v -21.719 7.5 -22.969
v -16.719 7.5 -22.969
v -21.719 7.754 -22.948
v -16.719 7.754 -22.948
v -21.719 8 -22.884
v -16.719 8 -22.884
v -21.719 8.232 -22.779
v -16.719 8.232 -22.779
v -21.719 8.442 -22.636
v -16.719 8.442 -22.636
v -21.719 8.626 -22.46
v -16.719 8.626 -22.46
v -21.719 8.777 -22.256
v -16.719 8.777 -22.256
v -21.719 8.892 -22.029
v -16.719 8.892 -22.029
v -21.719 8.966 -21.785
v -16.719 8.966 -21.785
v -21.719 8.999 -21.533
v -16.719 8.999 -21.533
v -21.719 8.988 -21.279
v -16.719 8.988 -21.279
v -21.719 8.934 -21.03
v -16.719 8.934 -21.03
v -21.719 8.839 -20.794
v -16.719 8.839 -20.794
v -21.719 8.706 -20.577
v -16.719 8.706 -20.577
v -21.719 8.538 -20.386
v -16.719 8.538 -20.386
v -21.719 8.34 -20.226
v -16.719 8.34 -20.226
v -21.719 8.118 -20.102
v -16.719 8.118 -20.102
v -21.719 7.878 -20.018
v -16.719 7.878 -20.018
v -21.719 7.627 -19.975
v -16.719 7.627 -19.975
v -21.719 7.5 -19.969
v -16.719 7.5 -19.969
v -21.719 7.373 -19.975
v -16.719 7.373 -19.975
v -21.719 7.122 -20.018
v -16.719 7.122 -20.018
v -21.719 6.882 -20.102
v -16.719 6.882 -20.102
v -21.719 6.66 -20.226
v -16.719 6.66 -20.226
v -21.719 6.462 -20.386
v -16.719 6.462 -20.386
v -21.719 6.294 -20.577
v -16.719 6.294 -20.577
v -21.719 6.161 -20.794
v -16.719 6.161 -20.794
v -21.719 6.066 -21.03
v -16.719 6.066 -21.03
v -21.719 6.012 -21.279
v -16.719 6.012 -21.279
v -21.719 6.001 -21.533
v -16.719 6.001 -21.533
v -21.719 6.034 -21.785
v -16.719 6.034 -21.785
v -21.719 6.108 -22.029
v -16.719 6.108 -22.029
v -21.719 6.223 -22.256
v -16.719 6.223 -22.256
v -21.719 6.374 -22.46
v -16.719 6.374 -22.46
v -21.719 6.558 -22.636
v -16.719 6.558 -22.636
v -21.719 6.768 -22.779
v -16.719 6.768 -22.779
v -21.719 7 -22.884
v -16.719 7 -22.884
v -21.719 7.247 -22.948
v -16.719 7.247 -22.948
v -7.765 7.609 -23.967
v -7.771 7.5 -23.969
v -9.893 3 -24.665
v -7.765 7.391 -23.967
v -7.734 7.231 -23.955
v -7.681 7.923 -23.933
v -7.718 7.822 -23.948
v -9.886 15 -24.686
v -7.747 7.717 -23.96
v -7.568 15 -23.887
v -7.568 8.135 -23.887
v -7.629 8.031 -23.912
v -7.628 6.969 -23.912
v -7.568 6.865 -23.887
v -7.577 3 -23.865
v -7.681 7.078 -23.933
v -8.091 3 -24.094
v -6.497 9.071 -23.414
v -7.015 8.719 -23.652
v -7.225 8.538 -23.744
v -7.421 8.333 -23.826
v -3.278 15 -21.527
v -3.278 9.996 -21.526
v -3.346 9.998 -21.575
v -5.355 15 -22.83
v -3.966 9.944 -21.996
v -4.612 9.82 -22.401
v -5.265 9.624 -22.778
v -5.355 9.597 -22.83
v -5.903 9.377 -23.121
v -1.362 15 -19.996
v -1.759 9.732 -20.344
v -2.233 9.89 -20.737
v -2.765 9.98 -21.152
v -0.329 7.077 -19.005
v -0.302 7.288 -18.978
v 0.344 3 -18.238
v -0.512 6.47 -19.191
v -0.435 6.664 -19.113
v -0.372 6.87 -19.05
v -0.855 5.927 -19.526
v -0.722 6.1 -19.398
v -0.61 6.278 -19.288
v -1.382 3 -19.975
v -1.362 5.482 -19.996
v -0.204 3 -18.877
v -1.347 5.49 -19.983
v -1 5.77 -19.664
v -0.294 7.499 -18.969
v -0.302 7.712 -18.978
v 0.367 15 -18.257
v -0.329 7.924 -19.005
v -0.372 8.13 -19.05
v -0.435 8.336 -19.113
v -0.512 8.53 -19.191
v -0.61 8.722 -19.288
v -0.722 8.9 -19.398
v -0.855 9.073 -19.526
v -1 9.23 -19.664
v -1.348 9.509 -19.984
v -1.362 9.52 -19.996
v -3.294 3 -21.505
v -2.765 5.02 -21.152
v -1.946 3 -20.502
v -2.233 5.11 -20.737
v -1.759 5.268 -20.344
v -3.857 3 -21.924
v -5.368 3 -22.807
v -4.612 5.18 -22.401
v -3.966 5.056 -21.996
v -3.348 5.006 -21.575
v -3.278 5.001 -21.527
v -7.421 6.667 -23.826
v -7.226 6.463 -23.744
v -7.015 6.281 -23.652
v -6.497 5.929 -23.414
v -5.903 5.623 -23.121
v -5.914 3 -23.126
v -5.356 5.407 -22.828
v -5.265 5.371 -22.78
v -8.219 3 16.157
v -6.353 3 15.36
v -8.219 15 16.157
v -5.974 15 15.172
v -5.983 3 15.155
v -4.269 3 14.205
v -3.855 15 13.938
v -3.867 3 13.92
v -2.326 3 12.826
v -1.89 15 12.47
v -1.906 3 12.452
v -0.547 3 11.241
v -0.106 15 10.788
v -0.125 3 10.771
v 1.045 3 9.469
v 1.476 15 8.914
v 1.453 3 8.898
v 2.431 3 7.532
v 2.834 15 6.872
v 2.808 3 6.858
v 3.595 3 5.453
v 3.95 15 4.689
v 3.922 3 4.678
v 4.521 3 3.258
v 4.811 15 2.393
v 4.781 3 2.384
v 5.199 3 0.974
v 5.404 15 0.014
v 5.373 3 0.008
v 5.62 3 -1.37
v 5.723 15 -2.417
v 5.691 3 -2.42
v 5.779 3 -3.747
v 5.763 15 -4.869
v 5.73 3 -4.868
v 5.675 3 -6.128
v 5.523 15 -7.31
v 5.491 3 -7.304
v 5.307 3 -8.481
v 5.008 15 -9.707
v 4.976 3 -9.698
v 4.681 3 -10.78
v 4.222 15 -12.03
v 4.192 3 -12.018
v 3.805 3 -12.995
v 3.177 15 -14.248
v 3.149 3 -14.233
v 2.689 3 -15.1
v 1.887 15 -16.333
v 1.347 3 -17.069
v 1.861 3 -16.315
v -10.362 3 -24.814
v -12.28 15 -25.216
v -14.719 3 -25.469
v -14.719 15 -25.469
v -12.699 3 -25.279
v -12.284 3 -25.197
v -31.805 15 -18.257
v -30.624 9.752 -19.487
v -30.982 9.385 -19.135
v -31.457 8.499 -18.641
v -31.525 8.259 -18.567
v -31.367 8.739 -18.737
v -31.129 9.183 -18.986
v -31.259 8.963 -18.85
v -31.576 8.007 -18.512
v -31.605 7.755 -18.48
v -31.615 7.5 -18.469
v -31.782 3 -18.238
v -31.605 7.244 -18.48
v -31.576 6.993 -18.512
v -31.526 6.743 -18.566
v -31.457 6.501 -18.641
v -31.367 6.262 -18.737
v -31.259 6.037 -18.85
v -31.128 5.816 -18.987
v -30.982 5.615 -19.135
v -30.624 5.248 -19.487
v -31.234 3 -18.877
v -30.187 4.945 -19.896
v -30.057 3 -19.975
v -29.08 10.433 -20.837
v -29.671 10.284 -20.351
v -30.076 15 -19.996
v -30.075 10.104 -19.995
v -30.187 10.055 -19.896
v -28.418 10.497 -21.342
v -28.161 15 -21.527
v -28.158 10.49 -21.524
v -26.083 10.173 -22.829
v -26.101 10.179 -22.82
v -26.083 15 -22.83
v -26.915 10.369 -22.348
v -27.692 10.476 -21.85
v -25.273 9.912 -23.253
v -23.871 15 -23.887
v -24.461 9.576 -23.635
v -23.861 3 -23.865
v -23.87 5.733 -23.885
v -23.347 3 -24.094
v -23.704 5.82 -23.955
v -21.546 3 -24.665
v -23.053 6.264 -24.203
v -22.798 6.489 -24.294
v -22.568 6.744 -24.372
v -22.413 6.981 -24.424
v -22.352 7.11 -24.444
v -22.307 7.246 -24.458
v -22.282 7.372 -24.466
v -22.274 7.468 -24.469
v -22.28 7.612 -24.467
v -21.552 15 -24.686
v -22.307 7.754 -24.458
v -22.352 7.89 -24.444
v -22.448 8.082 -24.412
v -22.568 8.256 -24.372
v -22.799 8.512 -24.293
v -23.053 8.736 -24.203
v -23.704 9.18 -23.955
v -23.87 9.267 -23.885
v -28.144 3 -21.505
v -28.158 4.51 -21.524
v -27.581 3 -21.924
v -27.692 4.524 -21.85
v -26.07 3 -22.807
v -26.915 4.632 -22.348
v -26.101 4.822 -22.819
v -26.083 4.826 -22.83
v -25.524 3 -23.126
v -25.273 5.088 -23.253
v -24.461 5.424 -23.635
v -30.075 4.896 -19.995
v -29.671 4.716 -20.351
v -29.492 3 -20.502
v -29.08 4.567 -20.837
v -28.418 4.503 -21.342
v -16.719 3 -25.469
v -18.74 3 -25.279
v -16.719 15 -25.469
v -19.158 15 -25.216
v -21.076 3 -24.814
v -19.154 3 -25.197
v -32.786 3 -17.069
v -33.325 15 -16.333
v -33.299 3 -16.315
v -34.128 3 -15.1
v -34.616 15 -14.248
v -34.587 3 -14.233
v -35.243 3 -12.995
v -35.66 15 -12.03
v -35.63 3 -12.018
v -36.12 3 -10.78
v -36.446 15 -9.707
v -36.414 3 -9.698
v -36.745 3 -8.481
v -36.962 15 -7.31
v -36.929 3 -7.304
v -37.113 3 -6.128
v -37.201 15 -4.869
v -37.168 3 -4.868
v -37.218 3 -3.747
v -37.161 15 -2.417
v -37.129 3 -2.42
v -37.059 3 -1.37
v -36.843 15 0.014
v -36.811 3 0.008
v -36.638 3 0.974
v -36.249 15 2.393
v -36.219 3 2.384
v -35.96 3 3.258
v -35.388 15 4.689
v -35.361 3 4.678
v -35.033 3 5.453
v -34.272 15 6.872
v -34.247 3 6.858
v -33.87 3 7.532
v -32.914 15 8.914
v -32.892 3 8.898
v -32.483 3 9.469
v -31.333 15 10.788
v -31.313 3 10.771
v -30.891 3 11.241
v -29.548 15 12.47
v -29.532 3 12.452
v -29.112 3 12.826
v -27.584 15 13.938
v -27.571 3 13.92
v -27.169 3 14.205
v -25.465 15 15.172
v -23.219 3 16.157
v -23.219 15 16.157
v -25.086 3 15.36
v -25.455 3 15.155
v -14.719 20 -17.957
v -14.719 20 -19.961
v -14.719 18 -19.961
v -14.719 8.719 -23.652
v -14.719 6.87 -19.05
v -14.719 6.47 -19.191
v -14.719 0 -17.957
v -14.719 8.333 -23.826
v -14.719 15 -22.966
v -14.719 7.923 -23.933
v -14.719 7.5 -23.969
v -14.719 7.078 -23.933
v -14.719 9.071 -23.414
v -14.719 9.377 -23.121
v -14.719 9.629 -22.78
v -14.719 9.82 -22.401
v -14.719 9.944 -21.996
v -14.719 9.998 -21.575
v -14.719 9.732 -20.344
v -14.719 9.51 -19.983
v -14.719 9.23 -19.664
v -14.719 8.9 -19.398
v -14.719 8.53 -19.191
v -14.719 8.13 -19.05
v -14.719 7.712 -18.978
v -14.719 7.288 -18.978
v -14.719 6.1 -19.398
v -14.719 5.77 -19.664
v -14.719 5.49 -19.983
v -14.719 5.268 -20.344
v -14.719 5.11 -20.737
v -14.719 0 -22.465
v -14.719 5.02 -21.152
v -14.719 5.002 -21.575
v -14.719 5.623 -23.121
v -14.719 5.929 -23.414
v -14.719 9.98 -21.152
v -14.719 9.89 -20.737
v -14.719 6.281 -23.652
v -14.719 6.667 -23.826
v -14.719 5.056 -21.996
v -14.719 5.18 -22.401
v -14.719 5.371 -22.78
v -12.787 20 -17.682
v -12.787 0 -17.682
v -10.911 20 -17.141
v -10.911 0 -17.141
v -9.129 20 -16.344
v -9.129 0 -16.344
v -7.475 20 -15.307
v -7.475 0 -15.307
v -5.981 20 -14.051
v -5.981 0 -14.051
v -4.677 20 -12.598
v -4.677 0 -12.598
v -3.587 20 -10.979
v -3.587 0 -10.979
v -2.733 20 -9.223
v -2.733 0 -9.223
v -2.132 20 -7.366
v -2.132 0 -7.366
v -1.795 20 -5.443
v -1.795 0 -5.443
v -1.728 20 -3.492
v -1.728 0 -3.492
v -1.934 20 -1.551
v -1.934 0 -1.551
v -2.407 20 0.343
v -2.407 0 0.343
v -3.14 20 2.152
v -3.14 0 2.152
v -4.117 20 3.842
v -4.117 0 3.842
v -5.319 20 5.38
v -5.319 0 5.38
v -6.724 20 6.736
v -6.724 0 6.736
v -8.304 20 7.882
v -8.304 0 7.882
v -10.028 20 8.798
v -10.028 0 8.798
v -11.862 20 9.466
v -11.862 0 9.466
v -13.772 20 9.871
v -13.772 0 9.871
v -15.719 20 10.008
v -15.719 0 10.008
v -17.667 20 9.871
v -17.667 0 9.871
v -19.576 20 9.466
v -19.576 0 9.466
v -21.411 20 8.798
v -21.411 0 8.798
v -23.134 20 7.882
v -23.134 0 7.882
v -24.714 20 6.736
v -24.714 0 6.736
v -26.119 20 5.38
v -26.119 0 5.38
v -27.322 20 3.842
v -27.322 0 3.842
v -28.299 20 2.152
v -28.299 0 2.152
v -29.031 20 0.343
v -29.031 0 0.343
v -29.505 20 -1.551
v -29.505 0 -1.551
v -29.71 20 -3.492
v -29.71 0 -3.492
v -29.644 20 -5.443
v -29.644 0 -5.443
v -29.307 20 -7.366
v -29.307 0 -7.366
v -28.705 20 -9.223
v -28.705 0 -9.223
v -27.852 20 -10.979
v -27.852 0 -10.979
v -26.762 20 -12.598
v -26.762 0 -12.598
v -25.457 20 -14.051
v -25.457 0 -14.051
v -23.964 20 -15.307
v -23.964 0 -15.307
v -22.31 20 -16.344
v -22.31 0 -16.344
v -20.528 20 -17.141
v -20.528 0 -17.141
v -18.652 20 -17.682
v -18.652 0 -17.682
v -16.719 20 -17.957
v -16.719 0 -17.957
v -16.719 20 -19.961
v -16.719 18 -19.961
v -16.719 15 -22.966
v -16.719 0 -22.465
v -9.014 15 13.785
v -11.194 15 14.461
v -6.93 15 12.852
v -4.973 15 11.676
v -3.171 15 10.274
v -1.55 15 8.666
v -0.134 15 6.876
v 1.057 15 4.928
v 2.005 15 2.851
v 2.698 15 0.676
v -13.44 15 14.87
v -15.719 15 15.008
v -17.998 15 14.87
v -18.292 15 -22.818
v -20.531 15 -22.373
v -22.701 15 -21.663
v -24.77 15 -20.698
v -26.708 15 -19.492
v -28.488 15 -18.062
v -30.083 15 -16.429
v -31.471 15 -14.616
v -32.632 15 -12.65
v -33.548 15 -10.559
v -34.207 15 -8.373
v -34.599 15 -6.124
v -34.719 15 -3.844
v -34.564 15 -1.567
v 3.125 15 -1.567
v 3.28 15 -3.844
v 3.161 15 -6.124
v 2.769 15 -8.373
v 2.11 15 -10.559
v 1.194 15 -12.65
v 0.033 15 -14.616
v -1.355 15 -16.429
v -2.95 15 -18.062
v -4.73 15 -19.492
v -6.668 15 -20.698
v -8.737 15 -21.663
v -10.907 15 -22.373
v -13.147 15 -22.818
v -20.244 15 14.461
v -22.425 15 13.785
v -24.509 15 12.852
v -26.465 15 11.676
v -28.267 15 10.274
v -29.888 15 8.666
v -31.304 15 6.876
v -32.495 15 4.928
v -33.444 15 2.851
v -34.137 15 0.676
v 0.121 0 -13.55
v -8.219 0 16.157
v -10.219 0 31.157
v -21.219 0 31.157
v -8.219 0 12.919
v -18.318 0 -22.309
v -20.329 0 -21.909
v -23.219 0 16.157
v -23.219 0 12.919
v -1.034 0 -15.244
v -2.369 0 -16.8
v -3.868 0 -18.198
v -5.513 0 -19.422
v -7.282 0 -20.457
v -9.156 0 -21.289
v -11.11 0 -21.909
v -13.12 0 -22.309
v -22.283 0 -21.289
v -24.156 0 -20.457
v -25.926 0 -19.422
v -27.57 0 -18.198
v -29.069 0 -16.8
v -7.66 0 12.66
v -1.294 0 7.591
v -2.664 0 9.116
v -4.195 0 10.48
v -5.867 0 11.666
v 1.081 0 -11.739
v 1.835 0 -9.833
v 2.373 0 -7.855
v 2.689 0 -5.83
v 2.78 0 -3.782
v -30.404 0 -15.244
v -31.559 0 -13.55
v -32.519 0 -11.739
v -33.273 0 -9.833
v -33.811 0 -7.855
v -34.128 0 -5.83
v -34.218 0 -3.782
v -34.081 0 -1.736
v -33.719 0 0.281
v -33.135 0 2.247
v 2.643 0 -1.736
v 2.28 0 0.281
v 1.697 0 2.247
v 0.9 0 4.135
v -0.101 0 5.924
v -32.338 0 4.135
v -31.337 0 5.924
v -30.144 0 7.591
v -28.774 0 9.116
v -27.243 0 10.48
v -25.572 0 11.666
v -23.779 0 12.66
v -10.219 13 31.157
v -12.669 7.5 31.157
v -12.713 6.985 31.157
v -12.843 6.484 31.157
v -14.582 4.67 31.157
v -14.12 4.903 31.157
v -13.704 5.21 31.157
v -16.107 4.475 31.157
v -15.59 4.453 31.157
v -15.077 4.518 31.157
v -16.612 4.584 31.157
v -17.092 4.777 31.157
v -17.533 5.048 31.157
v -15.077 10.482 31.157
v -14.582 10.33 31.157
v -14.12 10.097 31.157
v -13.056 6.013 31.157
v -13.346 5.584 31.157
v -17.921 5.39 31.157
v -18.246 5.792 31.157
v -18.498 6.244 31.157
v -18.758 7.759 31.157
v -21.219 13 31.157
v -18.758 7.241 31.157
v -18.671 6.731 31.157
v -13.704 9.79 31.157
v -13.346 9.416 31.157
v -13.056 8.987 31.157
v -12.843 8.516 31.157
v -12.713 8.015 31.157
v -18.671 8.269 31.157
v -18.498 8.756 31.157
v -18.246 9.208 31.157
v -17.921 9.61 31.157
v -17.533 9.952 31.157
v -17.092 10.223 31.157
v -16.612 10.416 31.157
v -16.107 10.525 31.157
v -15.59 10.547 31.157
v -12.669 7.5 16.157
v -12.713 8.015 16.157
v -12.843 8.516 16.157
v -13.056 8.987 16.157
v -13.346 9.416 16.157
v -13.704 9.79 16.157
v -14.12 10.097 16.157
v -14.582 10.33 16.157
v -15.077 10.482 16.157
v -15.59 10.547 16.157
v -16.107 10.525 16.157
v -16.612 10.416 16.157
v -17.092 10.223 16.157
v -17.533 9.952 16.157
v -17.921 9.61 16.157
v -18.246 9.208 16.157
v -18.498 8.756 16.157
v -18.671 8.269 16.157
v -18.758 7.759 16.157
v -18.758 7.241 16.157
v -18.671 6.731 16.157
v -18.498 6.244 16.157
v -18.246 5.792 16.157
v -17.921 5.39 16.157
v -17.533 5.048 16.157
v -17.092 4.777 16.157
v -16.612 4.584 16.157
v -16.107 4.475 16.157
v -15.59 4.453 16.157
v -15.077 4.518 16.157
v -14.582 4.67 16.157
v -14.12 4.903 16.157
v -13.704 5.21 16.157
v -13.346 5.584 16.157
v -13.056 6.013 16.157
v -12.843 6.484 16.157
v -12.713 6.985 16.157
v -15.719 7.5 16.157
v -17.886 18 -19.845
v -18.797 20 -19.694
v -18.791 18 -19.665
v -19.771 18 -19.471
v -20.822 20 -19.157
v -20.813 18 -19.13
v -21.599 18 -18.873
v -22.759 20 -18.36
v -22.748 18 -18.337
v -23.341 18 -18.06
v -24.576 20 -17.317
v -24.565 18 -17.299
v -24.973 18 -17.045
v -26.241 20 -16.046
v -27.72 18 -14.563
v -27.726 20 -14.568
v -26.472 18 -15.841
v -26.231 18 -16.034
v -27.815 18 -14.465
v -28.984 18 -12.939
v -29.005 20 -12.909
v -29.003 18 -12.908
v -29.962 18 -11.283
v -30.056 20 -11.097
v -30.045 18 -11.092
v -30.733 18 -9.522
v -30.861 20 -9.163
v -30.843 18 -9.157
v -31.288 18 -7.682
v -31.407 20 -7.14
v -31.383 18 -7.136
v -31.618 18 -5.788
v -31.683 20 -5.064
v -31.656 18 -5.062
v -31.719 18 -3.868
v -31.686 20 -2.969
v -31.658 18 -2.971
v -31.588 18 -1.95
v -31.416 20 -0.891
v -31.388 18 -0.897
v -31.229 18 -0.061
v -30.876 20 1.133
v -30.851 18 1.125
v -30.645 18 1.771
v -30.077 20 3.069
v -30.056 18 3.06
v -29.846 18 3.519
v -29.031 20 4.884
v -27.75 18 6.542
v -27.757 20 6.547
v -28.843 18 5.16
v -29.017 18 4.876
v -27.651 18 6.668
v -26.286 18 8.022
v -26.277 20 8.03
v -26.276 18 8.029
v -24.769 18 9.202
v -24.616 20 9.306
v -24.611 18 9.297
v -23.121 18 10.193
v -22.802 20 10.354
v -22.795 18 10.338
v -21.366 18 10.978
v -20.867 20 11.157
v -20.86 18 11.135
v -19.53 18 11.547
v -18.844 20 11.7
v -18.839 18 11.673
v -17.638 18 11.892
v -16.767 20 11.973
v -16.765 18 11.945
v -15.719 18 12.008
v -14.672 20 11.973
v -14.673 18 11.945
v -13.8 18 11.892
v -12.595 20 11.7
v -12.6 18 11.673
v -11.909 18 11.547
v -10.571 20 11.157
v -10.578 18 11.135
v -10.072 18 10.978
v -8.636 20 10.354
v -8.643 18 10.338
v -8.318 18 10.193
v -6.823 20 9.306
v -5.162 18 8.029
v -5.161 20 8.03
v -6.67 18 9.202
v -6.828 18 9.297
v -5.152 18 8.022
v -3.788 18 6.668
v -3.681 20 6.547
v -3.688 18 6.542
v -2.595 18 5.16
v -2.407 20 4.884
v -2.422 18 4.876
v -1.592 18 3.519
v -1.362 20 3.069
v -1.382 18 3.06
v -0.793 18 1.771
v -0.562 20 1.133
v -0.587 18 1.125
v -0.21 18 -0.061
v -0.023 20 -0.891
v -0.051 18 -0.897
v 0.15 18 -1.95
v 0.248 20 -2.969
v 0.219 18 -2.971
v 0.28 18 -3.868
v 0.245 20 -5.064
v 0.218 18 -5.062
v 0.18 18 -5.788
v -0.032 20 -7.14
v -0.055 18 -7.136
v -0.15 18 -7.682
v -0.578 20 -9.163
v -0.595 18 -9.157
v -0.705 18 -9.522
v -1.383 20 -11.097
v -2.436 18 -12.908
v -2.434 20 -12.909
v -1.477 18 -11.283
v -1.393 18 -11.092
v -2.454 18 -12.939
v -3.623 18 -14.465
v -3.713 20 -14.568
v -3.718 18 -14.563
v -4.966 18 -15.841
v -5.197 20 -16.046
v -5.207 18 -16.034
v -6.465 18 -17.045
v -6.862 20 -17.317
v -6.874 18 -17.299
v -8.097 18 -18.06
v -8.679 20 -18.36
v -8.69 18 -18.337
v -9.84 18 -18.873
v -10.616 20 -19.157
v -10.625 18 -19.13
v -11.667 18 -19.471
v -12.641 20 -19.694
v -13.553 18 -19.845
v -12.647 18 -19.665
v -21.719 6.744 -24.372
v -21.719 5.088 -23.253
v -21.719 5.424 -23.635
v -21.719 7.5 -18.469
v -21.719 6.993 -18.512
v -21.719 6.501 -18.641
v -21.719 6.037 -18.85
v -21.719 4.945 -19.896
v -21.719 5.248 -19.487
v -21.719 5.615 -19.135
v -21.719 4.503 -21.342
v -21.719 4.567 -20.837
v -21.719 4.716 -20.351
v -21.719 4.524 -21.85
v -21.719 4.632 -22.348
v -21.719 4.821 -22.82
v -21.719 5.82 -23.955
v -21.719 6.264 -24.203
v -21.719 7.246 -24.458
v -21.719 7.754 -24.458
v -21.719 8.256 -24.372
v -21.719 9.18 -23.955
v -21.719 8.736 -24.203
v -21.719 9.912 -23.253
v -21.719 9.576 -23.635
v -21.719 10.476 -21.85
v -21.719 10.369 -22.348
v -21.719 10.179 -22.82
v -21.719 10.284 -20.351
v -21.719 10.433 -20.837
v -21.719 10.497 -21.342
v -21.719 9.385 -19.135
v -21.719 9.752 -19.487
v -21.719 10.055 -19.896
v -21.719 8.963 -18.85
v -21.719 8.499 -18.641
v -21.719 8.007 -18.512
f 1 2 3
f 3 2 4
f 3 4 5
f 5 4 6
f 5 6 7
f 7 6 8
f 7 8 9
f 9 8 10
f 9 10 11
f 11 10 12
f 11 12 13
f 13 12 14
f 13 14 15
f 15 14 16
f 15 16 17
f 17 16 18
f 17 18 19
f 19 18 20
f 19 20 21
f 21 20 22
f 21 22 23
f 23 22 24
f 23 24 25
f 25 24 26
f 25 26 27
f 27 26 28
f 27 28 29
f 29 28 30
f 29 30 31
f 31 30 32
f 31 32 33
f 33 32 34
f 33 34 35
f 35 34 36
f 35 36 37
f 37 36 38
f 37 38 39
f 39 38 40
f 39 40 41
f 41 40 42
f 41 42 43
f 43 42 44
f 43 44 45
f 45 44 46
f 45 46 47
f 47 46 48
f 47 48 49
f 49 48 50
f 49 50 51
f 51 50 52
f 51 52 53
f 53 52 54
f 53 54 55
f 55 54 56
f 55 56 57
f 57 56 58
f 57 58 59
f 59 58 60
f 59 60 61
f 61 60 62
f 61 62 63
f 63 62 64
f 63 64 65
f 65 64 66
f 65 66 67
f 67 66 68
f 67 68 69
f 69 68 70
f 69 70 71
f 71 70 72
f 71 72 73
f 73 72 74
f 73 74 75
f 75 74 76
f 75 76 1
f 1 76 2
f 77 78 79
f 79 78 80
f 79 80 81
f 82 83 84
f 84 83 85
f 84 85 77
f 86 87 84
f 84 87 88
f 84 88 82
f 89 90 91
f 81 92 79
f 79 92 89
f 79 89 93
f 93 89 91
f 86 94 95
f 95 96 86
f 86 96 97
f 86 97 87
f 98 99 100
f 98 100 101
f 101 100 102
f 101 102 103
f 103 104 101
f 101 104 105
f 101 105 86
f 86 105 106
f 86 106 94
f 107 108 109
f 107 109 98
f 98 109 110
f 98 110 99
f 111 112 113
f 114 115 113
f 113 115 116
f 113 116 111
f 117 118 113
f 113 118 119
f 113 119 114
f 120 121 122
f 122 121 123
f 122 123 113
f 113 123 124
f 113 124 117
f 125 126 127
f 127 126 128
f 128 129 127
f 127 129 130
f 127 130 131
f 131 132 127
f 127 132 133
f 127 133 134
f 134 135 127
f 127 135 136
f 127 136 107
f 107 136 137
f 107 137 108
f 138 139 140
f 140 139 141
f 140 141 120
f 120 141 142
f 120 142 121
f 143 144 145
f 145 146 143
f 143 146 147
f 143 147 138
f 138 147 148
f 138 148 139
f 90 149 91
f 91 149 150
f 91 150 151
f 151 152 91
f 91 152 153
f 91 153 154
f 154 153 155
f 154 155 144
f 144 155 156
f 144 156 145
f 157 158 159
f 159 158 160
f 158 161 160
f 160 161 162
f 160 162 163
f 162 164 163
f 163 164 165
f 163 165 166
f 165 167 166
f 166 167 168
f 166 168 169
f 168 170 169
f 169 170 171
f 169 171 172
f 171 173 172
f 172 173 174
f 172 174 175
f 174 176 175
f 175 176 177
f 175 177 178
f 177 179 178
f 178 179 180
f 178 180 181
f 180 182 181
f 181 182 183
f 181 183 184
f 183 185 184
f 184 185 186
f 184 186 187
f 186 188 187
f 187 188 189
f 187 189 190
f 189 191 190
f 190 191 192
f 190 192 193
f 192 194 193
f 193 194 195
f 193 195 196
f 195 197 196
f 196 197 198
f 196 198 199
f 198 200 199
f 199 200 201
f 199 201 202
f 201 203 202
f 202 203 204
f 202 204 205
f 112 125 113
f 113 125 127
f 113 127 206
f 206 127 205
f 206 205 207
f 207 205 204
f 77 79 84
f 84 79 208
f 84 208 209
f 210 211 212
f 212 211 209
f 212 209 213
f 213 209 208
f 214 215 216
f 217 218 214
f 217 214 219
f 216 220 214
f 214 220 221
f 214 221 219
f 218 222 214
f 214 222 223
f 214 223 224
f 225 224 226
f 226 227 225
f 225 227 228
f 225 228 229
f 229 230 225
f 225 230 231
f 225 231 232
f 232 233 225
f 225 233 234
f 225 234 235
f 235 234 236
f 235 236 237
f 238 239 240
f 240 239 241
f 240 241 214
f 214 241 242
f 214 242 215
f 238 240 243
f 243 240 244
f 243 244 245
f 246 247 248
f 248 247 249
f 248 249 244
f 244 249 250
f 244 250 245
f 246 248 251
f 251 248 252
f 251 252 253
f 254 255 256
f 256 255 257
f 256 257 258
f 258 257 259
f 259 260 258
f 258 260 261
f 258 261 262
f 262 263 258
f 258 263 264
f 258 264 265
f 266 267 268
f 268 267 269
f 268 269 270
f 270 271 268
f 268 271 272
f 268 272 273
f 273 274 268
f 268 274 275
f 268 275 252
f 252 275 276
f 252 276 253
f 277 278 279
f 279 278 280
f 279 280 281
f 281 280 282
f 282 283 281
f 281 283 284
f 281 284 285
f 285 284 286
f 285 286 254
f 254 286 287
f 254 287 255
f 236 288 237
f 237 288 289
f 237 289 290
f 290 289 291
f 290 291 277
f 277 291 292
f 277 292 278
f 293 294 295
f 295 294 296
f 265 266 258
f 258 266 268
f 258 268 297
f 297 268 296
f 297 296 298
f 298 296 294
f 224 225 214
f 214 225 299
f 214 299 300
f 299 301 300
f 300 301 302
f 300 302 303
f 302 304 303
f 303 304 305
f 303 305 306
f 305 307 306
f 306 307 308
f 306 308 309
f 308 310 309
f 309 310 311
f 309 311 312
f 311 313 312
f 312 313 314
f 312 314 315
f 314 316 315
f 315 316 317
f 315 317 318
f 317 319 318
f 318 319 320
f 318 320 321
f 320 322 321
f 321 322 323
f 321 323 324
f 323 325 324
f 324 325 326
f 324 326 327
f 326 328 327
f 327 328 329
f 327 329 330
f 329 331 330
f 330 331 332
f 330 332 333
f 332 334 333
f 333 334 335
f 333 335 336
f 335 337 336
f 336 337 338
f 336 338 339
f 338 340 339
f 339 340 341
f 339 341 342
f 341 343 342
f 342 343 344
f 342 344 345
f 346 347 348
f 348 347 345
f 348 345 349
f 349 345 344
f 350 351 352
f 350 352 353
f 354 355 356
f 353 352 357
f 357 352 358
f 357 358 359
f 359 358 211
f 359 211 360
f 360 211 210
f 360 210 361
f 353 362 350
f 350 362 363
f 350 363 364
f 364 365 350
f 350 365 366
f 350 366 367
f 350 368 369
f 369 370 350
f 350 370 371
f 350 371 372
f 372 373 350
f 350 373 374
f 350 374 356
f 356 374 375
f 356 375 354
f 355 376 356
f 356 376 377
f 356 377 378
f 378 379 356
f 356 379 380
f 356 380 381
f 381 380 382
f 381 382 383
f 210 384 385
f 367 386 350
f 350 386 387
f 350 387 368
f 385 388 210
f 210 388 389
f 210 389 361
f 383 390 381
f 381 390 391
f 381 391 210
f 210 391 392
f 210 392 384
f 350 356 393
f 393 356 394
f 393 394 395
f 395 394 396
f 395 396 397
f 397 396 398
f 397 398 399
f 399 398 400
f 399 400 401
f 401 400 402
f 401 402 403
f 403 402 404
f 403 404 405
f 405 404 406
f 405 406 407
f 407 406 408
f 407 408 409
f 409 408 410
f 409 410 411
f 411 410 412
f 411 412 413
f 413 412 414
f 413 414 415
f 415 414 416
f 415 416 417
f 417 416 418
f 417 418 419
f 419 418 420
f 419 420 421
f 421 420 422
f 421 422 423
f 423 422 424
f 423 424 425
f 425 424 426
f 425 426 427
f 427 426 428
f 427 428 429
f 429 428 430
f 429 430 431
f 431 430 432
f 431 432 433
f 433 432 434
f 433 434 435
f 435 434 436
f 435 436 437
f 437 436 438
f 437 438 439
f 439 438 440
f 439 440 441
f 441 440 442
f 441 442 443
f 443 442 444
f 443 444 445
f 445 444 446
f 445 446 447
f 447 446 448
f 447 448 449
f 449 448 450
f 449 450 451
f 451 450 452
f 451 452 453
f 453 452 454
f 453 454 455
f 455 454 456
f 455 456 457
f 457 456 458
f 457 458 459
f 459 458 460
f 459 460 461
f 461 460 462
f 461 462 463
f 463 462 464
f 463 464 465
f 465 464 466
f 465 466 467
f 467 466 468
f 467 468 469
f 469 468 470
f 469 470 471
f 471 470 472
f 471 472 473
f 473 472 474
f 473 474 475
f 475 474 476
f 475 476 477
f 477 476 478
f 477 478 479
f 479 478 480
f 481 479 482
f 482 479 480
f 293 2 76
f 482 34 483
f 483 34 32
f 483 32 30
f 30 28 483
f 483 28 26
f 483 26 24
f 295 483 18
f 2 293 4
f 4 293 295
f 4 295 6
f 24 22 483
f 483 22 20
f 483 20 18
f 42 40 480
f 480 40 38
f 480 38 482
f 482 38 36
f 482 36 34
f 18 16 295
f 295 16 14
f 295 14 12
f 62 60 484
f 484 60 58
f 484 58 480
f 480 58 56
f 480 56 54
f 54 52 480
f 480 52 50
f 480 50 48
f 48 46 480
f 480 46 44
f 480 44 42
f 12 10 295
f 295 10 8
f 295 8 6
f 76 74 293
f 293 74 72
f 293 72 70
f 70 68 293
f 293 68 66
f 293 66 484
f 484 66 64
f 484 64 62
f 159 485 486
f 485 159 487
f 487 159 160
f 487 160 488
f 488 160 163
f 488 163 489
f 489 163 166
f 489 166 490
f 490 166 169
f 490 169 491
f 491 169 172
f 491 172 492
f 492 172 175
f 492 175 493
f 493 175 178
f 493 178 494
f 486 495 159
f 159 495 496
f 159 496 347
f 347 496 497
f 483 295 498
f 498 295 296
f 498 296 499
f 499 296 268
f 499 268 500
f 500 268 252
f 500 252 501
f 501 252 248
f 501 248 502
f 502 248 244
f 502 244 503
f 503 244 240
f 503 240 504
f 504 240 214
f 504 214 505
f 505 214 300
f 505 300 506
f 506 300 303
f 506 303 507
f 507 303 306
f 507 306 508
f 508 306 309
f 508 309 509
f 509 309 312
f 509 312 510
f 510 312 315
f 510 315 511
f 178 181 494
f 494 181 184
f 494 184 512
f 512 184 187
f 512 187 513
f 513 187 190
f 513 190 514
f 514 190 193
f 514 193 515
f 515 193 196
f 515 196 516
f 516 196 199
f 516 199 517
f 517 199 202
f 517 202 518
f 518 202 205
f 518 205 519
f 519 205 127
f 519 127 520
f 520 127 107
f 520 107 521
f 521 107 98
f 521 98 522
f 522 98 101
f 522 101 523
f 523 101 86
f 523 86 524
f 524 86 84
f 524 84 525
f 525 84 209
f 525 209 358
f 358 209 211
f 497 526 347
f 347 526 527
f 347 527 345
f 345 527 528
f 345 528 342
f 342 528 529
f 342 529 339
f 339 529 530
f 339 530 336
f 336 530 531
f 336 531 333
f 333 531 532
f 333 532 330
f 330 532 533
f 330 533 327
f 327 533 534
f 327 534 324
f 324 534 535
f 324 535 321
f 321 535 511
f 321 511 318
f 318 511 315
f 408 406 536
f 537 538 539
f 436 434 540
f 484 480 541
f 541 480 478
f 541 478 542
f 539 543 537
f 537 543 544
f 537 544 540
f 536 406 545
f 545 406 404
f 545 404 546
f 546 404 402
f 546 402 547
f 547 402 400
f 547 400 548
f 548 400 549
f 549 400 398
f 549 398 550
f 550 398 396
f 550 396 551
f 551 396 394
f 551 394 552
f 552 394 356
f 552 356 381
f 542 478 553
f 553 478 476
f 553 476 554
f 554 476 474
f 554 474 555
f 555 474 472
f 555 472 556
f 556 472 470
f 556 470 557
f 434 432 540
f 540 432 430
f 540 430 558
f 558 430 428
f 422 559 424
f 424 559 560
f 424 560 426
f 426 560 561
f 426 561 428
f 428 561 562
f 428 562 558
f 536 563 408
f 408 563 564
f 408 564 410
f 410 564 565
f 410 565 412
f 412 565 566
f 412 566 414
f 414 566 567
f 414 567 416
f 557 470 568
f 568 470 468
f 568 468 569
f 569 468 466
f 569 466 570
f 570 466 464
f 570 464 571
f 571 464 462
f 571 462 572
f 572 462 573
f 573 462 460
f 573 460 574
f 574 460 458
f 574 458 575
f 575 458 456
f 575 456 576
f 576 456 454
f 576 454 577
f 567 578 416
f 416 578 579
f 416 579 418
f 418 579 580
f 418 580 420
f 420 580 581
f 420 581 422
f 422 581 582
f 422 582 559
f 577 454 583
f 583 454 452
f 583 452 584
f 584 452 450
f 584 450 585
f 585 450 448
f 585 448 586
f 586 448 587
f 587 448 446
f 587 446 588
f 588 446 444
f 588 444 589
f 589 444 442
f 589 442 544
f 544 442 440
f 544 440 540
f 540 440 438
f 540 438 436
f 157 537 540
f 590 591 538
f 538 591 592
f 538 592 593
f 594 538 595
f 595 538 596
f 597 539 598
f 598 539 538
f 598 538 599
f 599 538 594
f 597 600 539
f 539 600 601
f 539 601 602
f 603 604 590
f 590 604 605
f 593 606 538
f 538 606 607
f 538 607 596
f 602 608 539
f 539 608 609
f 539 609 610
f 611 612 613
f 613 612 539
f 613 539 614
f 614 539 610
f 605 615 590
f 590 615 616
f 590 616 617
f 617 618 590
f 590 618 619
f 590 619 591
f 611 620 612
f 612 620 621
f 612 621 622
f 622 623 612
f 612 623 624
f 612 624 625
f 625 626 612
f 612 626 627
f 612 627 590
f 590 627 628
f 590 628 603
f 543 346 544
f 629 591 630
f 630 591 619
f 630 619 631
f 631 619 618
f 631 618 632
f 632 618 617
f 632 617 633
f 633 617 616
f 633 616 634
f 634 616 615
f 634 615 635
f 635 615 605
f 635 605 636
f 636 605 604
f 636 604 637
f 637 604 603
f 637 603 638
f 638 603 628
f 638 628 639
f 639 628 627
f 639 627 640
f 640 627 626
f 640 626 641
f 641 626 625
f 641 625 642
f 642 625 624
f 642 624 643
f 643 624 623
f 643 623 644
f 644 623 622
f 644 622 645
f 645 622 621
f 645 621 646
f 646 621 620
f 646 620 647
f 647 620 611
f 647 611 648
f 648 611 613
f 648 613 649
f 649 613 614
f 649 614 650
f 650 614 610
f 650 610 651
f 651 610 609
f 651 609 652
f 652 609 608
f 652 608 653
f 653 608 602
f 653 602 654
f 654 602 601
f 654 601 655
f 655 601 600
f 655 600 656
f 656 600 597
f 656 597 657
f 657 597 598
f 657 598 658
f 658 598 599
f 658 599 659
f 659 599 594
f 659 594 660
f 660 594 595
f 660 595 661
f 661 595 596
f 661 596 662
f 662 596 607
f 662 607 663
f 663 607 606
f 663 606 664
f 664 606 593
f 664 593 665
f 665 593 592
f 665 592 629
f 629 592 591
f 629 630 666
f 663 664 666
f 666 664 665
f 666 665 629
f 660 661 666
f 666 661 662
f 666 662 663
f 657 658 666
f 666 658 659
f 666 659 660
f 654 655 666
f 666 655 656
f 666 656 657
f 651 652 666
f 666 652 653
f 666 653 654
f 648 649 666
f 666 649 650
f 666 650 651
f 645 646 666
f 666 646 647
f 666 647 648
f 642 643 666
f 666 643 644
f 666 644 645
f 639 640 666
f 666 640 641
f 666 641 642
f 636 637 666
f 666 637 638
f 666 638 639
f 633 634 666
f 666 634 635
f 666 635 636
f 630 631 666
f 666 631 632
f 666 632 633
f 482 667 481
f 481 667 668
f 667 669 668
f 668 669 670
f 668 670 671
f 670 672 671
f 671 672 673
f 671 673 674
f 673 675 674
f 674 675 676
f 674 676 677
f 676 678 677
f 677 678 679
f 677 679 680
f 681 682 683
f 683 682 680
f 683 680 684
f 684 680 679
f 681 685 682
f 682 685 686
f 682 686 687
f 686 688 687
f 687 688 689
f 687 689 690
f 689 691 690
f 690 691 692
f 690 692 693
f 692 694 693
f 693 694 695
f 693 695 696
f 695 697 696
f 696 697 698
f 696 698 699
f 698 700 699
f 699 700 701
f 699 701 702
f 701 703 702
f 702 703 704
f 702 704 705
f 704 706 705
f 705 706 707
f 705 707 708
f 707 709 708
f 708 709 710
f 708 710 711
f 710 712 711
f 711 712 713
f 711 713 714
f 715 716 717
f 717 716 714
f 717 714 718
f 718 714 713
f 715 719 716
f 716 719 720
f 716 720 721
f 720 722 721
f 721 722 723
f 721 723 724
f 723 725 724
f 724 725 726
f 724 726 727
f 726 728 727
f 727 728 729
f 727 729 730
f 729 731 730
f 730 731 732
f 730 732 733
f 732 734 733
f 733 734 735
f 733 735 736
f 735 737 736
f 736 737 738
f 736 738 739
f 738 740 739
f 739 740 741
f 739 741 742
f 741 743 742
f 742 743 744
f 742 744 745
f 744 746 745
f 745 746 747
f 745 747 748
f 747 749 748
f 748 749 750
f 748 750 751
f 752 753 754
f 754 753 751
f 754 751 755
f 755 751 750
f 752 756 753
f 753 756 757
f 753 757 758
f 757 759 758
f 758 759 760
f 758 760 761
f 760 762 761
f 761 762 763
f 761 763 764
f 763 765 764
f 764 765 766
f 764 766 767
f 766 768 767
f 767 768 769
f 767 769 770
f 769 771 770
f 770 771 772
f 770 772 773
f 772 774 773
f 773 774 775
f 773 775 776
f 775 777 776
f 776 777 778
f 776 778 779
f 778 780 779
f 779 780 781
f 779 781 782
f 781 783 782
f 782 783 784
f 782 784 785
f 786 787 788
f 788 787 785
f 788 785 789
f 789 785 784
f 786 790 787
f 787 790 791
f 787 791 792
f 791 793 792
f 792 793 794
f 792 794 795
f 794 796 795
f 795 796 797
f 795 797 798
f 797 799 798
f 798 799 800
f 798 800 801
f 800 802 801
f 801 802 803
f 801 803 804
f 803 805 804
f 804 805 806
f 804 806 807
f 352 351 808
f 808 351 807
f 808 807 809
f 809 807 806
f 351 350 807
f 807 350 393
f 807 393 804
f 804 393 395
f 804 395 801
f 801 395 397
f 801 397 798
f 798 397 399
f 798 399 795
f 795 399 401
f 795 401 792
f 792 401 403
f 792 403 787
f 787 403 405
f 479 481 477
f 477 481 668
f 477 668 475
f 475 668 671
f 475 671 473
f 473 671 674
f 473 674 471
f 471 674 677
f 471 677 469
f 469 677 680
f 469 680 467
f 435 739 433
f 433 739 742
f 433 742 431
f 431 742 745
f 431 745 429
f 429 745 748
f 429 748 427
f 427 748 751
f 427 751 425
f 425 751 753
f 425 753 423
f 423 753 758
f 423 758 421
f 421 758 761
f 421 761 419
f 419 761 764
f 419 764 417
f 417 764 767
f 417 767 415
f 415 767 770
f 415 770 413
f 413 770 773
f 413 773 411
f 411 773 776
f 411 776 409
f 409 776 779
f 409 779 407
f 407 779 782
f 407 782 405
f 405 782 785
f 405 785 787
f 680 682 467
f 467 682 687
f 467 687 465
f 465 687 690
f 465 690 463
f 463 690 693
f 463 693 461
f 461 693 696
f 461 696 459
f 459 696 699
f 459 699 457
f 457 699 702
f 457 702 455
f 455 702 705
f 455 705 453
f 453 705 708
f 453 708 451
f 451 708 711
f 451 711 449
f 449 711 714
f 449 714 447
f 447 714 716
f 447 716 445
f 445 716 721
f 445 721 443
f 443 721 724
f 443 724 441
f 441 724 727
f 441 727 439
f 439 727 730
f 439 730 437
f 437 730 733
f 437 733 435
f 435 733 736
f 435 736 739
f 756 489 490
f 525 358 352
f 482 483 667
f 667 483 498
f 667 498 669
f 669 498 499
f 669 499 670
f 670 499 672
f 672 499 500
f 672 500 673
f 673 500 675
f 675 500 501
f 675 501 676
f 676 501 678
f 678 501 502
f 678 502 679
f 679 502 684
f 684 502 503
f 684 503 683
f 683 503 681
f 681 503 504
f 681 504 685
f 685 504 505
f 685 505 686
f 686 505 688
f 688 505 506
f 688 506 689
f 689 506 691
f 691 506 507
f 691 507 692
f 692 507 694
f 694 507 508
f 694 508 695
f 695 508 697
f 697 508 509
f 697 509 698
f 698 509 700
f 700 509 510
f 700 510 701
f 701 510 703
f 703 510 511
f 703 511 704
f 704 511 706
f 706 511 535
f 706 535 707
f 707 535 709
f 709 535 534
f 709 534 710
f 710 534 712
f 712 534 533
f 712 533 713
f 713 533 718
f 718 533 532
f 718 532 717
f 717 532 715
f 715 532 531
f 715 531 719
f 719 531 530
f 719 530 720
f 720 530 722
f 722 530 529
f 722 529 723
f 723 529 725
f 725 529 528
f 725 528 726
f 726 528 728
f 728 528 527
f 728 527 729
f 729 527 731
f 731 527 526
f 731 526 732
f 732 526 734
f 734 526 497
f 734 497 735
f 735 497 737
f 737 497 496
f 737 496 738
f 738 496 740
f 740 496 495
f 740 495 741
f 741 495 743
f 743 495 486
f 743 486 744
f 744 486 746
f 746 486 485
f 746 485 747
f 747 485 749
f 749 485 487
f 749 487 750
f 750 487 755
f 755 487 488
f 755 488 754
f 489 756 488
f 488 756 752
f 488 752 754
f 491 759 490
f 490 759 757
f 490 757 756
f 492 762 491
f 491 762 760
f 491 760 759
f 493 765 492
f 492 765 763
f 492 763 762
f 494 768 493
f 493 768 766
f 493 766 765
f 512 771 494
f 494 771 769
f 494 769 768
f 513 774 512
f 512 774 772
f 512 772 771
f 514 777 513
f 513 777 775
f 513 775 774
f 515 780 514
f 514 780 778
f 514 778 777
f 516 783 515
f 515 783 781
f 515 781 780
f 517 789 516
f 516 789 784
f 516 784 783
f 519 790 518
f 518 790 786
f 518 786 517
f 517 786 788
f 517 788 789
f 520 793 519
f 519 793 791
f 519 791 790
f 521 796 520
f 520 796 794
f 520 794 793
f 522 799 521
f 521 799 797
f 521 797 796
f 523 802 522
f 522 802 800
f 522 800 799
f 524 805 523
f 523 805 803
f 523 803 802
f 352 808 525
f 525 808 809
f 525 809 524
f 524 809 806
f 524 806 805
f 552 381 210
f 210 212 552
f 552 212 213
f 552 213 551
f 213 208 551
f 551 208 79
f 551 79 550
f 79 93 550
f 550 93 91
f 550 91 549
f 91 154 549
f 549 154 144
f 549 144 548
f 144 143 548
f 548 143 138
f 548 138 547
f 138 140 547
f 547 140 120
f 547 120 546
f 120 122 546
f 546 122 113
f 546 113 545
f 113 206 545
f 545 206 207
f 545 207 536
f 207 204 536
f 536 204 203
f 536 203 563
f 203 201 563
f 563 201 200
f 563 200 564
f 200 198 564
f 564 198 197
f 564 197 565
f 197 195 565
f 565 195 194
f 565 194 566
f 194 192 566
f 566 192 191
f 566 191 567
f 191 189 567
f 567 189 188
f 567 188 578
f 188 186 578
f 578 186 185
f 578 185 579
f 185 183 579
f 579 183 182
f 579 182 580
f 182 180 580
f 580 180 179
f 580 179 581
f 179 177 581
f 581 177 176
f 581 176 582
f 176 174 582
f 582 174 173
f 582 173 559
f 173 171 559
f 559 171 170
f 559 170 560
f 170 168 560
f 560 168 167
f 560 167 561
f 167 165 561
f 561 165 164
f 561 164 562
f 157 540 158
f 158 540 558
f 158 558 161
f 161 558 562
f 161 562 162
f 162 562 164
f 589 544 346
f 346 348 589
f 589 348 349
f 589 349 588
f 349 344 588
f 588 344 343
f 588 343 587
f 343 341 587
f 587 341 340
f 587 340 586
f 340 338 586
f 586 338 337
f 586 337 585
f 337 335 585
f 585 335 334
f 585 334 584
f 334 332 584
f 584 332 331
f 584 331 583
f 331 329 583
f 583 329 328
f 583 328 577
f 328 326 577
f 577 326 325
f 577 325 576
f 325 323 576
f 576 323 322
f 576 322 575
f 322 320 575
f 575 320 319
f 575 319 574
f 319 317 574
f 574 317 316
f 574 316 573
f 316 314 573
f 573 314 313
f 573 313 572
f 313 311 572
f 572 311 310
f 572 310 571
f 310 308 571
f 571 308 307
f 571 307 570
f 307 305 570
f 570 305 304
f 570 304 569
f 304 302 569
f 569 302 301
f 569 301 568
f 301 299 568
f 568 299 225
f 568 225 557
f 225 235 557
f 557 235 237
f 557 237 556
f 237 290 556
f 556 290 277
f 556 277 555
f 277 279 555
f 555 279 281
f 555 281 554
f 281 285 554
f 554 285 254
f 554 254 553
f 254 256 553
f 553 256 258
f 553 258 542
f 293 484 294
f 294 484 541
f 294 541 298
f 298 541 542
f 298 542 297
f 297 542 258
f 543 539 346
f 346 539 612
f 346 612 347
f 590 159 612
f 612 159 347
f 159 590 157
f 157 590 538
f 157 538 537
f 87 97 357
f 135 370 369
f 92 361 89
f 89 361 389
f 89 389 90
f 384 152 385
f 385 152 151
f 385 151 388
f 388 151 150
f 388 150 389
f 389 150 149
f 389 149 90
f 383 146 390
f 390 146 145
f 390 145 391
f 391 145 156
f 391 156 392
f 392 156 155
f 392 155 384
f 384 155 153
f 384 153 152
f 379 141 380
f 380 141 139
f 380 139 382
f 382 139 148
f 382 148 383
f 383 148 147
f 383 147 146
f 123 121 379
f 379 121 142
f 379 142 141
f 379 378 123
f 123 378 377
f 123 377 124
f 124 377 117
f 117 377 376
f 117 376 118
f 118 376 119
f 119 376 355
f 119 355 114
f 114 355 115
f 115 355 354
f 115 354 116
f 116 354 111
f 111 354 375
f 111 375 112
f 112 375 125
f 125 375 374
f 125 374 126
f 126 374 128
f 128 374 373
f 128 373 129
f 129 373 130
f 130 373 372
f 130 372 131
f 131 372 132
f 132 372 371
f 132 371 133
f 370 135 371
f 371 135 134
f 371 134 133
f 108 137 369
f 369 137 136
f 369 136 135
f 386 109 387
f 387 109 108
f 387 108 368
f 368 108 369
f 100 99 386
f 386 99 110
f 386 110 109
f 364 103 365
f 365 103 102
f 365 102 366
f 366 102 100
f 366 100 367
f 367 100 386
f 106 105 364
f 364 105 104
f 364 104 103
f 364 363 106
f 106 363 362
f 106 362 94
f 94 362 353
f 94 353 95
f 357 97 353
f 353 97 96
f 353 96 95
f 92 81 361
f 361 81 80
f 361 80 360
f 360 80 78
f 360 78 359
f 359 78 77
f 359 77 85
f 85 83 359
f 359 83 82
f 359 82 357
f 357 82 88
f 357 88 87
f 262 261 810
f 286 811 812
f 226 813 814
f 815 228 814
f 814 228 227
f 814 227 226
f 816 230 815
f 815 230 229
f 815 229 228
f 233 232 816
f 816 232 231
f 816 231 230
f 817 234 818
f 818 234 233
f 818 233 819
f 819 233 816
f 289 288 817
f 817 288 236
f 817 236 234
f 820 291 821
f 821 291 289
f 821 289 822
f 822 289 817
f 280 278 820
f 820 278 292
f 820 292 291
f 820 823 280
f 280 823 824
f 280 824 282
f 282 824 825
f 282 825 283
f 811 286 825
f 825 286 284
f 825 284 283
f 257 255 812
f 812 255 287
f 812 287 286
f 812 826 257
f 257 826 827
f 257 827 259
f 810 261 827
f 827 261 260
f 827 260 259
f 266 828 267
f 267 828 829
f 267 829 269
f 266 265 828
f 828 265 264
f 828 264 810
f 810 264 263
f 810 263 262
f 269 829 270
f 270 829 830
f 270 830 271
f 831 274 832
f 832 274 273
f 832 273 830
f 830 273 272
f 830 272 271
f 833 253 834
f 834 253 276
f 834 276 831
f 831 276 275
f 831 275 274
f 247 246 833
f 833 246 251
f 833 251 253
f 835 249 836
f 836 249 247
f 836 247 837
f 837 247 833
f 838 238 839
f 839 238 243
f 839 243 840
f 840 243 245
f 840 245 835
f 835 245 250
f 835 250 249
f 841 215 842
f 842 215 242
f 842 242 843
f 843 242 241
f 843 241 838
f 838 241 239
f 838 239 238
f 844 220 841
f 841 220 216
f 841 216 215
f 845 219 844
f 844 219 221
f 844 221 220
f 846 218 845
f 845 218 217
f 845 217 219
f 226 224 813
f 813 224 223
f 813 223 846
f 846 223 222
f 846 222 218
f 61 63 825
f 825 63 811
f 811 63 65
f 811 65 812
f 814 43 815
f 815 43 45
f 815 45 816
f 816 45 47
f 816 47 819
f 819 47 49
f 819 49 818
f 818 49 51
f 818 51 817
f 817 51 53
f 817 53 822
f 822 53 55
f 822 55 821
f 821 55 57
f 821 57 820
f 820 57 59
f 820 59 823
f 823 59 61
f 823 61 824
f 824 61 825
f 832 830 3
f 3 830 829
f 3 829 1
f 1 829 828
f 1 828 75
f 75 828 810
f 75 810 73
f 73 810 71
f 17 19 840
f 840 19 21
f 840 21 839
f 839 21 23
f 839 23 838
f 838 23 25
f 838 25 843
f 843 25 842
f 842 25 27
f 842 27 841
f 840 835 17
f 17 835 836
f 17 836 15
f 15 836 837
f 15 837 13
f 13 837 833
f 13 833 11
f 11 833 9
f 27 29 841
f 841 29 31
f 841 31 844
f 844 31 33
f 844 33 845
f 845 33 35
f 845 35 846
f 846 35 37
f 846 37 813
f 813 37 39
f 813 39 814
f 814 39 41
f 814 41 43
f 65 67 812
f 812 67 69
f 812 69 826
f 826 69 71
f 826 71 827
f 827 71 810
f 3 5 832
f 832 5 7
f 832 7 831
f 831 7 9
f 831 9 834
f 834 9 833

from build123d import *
from OCP.BRepFilletAPI import BRepFilletAPI_MakeChamfer

# Parameters (mm, degrees)
BOSS_EXTRUDE1_DEPTH     = 15
SKETCH2_R               = 3.05
CUT_EXTRUDE1_DEPTH      = 15
BOSS_EXTRUDE2_DEPTH     = 5
CHAMFER4_SIZE           = 3
CHAMFER6_SIZE           = 15
CHAMFER6_SIZE_2         = 2
CUT_EXTRUDE2_DEPTH      = 29
CUT_EXTRUDE2_DEPTH_BACK = 25
SKETCH4_R               = 1.5
SKETCH5_R               = 2.5
CUT_EXTRUDE3_DEPTH      = 20.5
SKETCH6_R               = 3
CUT_EXTRUDE4_DEPTH      = 15.5


with BuildPart() as part:
    # Sketch1 → Boss-Extrude1 (new body)
    with BuildSketch(Plane(origin=(0, 0, 0), x_dir=(1, 0, 0), z_dir=(0, 1, 0))):
        with BuildLine():
            ThreePointArc((-14.719179189, 17.95673597), (-15.719179189, -10.007504074), (-16.719179189, 17.95673597))
            Line((-16.719179189, 17.95673597), (-16.719179189, 25.469227521))
            ThreePointArc((-16.719179189, 25.469227521), (-36.961756137, 7.309561592), (-23.219179189, -16.156945753))
            Line((-23.219179189, -16.156945753), (-23.219179189, -31.156945753))
            Line((-23.219179189, -31.156945753), (-8.219179189, -31.156945753))
            Line((-8.219179189, -31.156945753), (-8.219179189, -16.156945753))
            ThreePointArc((-8.219179189, -16.156945753), (5.523397758, 7.309561592), (-14.719179189, 25.469227521))
            Line((-14.719179189, 25.469227521), (-14.719179189, 17.95673597))
        make_face()
    extrude(amount=BOSS_EXTRUDE1_DEPTH)

    # Sketch2 → Cut-Extrude1 (cut)
    with BuildSketch(Plane.XY.offset(31.156945753)):
        with Locations((-15.719179189, 7.5)):
            Circle(SKETCH2_R)
    extrude(amount=-CUT_EXTRUDE1_DEPTH, mode=Mode.SUBTRACT)

    # Sketch3 → Boss-Extrude2 (add)
    with BuildSketch(Plane(origin=(0, 15, 0), x_dir=(1, 0, 0), z_dir=(0, 1, 0))):
        with BuildLine():
            Line((-16.719179189, 17.95673597), (-16.719179189, 19.961215349))
            ThreePointArc((-16.719179189, 19.961215349), (-26.673630339, -7.669407863), (0.280820811, 3.992495926))
            ThreePointArc((0.280820811, 3.992495926), (-4.0572754, 14.946947076), (-14.719179189, 19.961215349))
            Line((-14.719179189, 19.961215349), (-14.719179189, 17.95673597))
            ThreePointArc((-14.719179189, 17.95673597), (-15.719179189, -10.007504074), (-16.719179189, 17.95673597))
        make_face()
    extrude(amount=BOSS_EXTRUDE2_DEPTH)

    # Chamfer4
    chamfer4_edges = [part.edges().sort_by_distance(p)[0] for p in [
        (-26.673630339, 15, 7.669407863),
        (-36.961756137, 0, -7.309561592),
        (5.523397758, 0, -7.309561592),
    ]]
    chamfer(chamfer4_edges, length=CHAMFER4_SIZE)

    # Chamfer6
    chamfer6_edges_1 = [part.edges().sort_by_distance(p)[0] for p in [
        (-23.219179189, 7.5, 31.156945753),
    ]]
    chamfer6_side_1 = [part.faces().sort_by_distance(p)[0] for p in [
        (-23.219179189, 7.5, 31.116945753),
    ]]
    chamfer6_edges_2 = [part.edges().sort_by_distance(p)[0] for p in [
        (-8.219179189, 7.5, 31.156945753),
    ]]
    chamfer6_side_2 = [part.faces().sort_by_distance(p)[0] for p in [
        (-8.259179189, 7.5, 31.156945753),
    ]]
    chamfer6_edges_3 = [part.edges().sort_by_distance(p)[0] for p in [
        (-15.719179189, 15, 31.156945753),
    ]]
    chamfer6_side_3 = [part.faces().sort_by_distance(p)[0] for p in [
        (-15.719179189, 14.96, 31.156945753),
    ]]
    chamfer6 = BRepFilletAPI_MakeChamfer(part.part.solid().wrapped)
    for e in chamfer6_edges_1:
        chamfer6.Add(CHAMFER6_SIZE - 0.0001, CHAMFER6_SIZE_2 - 0.0001, e.wrapped, chamfer6_side_1[0].wrapped)
    for e in chamfer6_edges_2:
        chamfer6.Add(CHAMFER6_SIZE_2 - 0.0001, CHAMFER6_SIZE - 0.0001, e.wrapped, chamfer6_side_2[0].wrapped)
    for e in chamfer6_edges_3:
        chamfer6.Add(CHAMFER6_SIZE_2 - 0.0001, CHAMFER6_SIZE - 0.0001, e.wrapped, chamfer6_side_3[0].wrapped)
    add(Compound.cast(chamfer6.Shape()), mode=Mode.REPLACE)  # a hair under: the kernel refuses the full size

    # Sketch4 → Cut-Extrude2 (cut, two sides: drawn at the far end of the back side and taken through both)
    with BuildSketch(Plane.ZY.offset(14.719179189).offset(-CUT_EXTRUDE2_DEPTH_BACK)):
        with Locations(Location((-21.469227521, 7.5, 0), (0, 0, 180))):
            Circle(SKETCH4_R)
    extrude(amount=CUT_EXTRUDE2_DEPTH + CUT_EXTRUDE2_DEPTH_BACK, mode=Mode.SUBTRACT)

    # Sketch5 → Cut-Extrude3 (cut)
    with BuildSketch(Plane(origin=(5.780820811, 0, 0), x_dir=(0, 0, -1), z_dir=(1, 0, 0))):
        with Locations((21.469227521, 7.5)):
            Circle(SKETCH5_R)
    extrude(amount=-CUT_EXTRUDE3_DEPTH, mode=Mode.SUBTRACT)

    # Sketch6 → Cut-Extrude4 (cut)
    with BuildSketch(Plane.ZY.offset(37.219179189)):
        with Locations((-21.469227521, 7.5)):
            Circle(SKETCH6_R)
    extrude(amount=-CUT_EXTRUDE4_DEPTH, mode=Mode.SUBTRACT)


solid = part.part
